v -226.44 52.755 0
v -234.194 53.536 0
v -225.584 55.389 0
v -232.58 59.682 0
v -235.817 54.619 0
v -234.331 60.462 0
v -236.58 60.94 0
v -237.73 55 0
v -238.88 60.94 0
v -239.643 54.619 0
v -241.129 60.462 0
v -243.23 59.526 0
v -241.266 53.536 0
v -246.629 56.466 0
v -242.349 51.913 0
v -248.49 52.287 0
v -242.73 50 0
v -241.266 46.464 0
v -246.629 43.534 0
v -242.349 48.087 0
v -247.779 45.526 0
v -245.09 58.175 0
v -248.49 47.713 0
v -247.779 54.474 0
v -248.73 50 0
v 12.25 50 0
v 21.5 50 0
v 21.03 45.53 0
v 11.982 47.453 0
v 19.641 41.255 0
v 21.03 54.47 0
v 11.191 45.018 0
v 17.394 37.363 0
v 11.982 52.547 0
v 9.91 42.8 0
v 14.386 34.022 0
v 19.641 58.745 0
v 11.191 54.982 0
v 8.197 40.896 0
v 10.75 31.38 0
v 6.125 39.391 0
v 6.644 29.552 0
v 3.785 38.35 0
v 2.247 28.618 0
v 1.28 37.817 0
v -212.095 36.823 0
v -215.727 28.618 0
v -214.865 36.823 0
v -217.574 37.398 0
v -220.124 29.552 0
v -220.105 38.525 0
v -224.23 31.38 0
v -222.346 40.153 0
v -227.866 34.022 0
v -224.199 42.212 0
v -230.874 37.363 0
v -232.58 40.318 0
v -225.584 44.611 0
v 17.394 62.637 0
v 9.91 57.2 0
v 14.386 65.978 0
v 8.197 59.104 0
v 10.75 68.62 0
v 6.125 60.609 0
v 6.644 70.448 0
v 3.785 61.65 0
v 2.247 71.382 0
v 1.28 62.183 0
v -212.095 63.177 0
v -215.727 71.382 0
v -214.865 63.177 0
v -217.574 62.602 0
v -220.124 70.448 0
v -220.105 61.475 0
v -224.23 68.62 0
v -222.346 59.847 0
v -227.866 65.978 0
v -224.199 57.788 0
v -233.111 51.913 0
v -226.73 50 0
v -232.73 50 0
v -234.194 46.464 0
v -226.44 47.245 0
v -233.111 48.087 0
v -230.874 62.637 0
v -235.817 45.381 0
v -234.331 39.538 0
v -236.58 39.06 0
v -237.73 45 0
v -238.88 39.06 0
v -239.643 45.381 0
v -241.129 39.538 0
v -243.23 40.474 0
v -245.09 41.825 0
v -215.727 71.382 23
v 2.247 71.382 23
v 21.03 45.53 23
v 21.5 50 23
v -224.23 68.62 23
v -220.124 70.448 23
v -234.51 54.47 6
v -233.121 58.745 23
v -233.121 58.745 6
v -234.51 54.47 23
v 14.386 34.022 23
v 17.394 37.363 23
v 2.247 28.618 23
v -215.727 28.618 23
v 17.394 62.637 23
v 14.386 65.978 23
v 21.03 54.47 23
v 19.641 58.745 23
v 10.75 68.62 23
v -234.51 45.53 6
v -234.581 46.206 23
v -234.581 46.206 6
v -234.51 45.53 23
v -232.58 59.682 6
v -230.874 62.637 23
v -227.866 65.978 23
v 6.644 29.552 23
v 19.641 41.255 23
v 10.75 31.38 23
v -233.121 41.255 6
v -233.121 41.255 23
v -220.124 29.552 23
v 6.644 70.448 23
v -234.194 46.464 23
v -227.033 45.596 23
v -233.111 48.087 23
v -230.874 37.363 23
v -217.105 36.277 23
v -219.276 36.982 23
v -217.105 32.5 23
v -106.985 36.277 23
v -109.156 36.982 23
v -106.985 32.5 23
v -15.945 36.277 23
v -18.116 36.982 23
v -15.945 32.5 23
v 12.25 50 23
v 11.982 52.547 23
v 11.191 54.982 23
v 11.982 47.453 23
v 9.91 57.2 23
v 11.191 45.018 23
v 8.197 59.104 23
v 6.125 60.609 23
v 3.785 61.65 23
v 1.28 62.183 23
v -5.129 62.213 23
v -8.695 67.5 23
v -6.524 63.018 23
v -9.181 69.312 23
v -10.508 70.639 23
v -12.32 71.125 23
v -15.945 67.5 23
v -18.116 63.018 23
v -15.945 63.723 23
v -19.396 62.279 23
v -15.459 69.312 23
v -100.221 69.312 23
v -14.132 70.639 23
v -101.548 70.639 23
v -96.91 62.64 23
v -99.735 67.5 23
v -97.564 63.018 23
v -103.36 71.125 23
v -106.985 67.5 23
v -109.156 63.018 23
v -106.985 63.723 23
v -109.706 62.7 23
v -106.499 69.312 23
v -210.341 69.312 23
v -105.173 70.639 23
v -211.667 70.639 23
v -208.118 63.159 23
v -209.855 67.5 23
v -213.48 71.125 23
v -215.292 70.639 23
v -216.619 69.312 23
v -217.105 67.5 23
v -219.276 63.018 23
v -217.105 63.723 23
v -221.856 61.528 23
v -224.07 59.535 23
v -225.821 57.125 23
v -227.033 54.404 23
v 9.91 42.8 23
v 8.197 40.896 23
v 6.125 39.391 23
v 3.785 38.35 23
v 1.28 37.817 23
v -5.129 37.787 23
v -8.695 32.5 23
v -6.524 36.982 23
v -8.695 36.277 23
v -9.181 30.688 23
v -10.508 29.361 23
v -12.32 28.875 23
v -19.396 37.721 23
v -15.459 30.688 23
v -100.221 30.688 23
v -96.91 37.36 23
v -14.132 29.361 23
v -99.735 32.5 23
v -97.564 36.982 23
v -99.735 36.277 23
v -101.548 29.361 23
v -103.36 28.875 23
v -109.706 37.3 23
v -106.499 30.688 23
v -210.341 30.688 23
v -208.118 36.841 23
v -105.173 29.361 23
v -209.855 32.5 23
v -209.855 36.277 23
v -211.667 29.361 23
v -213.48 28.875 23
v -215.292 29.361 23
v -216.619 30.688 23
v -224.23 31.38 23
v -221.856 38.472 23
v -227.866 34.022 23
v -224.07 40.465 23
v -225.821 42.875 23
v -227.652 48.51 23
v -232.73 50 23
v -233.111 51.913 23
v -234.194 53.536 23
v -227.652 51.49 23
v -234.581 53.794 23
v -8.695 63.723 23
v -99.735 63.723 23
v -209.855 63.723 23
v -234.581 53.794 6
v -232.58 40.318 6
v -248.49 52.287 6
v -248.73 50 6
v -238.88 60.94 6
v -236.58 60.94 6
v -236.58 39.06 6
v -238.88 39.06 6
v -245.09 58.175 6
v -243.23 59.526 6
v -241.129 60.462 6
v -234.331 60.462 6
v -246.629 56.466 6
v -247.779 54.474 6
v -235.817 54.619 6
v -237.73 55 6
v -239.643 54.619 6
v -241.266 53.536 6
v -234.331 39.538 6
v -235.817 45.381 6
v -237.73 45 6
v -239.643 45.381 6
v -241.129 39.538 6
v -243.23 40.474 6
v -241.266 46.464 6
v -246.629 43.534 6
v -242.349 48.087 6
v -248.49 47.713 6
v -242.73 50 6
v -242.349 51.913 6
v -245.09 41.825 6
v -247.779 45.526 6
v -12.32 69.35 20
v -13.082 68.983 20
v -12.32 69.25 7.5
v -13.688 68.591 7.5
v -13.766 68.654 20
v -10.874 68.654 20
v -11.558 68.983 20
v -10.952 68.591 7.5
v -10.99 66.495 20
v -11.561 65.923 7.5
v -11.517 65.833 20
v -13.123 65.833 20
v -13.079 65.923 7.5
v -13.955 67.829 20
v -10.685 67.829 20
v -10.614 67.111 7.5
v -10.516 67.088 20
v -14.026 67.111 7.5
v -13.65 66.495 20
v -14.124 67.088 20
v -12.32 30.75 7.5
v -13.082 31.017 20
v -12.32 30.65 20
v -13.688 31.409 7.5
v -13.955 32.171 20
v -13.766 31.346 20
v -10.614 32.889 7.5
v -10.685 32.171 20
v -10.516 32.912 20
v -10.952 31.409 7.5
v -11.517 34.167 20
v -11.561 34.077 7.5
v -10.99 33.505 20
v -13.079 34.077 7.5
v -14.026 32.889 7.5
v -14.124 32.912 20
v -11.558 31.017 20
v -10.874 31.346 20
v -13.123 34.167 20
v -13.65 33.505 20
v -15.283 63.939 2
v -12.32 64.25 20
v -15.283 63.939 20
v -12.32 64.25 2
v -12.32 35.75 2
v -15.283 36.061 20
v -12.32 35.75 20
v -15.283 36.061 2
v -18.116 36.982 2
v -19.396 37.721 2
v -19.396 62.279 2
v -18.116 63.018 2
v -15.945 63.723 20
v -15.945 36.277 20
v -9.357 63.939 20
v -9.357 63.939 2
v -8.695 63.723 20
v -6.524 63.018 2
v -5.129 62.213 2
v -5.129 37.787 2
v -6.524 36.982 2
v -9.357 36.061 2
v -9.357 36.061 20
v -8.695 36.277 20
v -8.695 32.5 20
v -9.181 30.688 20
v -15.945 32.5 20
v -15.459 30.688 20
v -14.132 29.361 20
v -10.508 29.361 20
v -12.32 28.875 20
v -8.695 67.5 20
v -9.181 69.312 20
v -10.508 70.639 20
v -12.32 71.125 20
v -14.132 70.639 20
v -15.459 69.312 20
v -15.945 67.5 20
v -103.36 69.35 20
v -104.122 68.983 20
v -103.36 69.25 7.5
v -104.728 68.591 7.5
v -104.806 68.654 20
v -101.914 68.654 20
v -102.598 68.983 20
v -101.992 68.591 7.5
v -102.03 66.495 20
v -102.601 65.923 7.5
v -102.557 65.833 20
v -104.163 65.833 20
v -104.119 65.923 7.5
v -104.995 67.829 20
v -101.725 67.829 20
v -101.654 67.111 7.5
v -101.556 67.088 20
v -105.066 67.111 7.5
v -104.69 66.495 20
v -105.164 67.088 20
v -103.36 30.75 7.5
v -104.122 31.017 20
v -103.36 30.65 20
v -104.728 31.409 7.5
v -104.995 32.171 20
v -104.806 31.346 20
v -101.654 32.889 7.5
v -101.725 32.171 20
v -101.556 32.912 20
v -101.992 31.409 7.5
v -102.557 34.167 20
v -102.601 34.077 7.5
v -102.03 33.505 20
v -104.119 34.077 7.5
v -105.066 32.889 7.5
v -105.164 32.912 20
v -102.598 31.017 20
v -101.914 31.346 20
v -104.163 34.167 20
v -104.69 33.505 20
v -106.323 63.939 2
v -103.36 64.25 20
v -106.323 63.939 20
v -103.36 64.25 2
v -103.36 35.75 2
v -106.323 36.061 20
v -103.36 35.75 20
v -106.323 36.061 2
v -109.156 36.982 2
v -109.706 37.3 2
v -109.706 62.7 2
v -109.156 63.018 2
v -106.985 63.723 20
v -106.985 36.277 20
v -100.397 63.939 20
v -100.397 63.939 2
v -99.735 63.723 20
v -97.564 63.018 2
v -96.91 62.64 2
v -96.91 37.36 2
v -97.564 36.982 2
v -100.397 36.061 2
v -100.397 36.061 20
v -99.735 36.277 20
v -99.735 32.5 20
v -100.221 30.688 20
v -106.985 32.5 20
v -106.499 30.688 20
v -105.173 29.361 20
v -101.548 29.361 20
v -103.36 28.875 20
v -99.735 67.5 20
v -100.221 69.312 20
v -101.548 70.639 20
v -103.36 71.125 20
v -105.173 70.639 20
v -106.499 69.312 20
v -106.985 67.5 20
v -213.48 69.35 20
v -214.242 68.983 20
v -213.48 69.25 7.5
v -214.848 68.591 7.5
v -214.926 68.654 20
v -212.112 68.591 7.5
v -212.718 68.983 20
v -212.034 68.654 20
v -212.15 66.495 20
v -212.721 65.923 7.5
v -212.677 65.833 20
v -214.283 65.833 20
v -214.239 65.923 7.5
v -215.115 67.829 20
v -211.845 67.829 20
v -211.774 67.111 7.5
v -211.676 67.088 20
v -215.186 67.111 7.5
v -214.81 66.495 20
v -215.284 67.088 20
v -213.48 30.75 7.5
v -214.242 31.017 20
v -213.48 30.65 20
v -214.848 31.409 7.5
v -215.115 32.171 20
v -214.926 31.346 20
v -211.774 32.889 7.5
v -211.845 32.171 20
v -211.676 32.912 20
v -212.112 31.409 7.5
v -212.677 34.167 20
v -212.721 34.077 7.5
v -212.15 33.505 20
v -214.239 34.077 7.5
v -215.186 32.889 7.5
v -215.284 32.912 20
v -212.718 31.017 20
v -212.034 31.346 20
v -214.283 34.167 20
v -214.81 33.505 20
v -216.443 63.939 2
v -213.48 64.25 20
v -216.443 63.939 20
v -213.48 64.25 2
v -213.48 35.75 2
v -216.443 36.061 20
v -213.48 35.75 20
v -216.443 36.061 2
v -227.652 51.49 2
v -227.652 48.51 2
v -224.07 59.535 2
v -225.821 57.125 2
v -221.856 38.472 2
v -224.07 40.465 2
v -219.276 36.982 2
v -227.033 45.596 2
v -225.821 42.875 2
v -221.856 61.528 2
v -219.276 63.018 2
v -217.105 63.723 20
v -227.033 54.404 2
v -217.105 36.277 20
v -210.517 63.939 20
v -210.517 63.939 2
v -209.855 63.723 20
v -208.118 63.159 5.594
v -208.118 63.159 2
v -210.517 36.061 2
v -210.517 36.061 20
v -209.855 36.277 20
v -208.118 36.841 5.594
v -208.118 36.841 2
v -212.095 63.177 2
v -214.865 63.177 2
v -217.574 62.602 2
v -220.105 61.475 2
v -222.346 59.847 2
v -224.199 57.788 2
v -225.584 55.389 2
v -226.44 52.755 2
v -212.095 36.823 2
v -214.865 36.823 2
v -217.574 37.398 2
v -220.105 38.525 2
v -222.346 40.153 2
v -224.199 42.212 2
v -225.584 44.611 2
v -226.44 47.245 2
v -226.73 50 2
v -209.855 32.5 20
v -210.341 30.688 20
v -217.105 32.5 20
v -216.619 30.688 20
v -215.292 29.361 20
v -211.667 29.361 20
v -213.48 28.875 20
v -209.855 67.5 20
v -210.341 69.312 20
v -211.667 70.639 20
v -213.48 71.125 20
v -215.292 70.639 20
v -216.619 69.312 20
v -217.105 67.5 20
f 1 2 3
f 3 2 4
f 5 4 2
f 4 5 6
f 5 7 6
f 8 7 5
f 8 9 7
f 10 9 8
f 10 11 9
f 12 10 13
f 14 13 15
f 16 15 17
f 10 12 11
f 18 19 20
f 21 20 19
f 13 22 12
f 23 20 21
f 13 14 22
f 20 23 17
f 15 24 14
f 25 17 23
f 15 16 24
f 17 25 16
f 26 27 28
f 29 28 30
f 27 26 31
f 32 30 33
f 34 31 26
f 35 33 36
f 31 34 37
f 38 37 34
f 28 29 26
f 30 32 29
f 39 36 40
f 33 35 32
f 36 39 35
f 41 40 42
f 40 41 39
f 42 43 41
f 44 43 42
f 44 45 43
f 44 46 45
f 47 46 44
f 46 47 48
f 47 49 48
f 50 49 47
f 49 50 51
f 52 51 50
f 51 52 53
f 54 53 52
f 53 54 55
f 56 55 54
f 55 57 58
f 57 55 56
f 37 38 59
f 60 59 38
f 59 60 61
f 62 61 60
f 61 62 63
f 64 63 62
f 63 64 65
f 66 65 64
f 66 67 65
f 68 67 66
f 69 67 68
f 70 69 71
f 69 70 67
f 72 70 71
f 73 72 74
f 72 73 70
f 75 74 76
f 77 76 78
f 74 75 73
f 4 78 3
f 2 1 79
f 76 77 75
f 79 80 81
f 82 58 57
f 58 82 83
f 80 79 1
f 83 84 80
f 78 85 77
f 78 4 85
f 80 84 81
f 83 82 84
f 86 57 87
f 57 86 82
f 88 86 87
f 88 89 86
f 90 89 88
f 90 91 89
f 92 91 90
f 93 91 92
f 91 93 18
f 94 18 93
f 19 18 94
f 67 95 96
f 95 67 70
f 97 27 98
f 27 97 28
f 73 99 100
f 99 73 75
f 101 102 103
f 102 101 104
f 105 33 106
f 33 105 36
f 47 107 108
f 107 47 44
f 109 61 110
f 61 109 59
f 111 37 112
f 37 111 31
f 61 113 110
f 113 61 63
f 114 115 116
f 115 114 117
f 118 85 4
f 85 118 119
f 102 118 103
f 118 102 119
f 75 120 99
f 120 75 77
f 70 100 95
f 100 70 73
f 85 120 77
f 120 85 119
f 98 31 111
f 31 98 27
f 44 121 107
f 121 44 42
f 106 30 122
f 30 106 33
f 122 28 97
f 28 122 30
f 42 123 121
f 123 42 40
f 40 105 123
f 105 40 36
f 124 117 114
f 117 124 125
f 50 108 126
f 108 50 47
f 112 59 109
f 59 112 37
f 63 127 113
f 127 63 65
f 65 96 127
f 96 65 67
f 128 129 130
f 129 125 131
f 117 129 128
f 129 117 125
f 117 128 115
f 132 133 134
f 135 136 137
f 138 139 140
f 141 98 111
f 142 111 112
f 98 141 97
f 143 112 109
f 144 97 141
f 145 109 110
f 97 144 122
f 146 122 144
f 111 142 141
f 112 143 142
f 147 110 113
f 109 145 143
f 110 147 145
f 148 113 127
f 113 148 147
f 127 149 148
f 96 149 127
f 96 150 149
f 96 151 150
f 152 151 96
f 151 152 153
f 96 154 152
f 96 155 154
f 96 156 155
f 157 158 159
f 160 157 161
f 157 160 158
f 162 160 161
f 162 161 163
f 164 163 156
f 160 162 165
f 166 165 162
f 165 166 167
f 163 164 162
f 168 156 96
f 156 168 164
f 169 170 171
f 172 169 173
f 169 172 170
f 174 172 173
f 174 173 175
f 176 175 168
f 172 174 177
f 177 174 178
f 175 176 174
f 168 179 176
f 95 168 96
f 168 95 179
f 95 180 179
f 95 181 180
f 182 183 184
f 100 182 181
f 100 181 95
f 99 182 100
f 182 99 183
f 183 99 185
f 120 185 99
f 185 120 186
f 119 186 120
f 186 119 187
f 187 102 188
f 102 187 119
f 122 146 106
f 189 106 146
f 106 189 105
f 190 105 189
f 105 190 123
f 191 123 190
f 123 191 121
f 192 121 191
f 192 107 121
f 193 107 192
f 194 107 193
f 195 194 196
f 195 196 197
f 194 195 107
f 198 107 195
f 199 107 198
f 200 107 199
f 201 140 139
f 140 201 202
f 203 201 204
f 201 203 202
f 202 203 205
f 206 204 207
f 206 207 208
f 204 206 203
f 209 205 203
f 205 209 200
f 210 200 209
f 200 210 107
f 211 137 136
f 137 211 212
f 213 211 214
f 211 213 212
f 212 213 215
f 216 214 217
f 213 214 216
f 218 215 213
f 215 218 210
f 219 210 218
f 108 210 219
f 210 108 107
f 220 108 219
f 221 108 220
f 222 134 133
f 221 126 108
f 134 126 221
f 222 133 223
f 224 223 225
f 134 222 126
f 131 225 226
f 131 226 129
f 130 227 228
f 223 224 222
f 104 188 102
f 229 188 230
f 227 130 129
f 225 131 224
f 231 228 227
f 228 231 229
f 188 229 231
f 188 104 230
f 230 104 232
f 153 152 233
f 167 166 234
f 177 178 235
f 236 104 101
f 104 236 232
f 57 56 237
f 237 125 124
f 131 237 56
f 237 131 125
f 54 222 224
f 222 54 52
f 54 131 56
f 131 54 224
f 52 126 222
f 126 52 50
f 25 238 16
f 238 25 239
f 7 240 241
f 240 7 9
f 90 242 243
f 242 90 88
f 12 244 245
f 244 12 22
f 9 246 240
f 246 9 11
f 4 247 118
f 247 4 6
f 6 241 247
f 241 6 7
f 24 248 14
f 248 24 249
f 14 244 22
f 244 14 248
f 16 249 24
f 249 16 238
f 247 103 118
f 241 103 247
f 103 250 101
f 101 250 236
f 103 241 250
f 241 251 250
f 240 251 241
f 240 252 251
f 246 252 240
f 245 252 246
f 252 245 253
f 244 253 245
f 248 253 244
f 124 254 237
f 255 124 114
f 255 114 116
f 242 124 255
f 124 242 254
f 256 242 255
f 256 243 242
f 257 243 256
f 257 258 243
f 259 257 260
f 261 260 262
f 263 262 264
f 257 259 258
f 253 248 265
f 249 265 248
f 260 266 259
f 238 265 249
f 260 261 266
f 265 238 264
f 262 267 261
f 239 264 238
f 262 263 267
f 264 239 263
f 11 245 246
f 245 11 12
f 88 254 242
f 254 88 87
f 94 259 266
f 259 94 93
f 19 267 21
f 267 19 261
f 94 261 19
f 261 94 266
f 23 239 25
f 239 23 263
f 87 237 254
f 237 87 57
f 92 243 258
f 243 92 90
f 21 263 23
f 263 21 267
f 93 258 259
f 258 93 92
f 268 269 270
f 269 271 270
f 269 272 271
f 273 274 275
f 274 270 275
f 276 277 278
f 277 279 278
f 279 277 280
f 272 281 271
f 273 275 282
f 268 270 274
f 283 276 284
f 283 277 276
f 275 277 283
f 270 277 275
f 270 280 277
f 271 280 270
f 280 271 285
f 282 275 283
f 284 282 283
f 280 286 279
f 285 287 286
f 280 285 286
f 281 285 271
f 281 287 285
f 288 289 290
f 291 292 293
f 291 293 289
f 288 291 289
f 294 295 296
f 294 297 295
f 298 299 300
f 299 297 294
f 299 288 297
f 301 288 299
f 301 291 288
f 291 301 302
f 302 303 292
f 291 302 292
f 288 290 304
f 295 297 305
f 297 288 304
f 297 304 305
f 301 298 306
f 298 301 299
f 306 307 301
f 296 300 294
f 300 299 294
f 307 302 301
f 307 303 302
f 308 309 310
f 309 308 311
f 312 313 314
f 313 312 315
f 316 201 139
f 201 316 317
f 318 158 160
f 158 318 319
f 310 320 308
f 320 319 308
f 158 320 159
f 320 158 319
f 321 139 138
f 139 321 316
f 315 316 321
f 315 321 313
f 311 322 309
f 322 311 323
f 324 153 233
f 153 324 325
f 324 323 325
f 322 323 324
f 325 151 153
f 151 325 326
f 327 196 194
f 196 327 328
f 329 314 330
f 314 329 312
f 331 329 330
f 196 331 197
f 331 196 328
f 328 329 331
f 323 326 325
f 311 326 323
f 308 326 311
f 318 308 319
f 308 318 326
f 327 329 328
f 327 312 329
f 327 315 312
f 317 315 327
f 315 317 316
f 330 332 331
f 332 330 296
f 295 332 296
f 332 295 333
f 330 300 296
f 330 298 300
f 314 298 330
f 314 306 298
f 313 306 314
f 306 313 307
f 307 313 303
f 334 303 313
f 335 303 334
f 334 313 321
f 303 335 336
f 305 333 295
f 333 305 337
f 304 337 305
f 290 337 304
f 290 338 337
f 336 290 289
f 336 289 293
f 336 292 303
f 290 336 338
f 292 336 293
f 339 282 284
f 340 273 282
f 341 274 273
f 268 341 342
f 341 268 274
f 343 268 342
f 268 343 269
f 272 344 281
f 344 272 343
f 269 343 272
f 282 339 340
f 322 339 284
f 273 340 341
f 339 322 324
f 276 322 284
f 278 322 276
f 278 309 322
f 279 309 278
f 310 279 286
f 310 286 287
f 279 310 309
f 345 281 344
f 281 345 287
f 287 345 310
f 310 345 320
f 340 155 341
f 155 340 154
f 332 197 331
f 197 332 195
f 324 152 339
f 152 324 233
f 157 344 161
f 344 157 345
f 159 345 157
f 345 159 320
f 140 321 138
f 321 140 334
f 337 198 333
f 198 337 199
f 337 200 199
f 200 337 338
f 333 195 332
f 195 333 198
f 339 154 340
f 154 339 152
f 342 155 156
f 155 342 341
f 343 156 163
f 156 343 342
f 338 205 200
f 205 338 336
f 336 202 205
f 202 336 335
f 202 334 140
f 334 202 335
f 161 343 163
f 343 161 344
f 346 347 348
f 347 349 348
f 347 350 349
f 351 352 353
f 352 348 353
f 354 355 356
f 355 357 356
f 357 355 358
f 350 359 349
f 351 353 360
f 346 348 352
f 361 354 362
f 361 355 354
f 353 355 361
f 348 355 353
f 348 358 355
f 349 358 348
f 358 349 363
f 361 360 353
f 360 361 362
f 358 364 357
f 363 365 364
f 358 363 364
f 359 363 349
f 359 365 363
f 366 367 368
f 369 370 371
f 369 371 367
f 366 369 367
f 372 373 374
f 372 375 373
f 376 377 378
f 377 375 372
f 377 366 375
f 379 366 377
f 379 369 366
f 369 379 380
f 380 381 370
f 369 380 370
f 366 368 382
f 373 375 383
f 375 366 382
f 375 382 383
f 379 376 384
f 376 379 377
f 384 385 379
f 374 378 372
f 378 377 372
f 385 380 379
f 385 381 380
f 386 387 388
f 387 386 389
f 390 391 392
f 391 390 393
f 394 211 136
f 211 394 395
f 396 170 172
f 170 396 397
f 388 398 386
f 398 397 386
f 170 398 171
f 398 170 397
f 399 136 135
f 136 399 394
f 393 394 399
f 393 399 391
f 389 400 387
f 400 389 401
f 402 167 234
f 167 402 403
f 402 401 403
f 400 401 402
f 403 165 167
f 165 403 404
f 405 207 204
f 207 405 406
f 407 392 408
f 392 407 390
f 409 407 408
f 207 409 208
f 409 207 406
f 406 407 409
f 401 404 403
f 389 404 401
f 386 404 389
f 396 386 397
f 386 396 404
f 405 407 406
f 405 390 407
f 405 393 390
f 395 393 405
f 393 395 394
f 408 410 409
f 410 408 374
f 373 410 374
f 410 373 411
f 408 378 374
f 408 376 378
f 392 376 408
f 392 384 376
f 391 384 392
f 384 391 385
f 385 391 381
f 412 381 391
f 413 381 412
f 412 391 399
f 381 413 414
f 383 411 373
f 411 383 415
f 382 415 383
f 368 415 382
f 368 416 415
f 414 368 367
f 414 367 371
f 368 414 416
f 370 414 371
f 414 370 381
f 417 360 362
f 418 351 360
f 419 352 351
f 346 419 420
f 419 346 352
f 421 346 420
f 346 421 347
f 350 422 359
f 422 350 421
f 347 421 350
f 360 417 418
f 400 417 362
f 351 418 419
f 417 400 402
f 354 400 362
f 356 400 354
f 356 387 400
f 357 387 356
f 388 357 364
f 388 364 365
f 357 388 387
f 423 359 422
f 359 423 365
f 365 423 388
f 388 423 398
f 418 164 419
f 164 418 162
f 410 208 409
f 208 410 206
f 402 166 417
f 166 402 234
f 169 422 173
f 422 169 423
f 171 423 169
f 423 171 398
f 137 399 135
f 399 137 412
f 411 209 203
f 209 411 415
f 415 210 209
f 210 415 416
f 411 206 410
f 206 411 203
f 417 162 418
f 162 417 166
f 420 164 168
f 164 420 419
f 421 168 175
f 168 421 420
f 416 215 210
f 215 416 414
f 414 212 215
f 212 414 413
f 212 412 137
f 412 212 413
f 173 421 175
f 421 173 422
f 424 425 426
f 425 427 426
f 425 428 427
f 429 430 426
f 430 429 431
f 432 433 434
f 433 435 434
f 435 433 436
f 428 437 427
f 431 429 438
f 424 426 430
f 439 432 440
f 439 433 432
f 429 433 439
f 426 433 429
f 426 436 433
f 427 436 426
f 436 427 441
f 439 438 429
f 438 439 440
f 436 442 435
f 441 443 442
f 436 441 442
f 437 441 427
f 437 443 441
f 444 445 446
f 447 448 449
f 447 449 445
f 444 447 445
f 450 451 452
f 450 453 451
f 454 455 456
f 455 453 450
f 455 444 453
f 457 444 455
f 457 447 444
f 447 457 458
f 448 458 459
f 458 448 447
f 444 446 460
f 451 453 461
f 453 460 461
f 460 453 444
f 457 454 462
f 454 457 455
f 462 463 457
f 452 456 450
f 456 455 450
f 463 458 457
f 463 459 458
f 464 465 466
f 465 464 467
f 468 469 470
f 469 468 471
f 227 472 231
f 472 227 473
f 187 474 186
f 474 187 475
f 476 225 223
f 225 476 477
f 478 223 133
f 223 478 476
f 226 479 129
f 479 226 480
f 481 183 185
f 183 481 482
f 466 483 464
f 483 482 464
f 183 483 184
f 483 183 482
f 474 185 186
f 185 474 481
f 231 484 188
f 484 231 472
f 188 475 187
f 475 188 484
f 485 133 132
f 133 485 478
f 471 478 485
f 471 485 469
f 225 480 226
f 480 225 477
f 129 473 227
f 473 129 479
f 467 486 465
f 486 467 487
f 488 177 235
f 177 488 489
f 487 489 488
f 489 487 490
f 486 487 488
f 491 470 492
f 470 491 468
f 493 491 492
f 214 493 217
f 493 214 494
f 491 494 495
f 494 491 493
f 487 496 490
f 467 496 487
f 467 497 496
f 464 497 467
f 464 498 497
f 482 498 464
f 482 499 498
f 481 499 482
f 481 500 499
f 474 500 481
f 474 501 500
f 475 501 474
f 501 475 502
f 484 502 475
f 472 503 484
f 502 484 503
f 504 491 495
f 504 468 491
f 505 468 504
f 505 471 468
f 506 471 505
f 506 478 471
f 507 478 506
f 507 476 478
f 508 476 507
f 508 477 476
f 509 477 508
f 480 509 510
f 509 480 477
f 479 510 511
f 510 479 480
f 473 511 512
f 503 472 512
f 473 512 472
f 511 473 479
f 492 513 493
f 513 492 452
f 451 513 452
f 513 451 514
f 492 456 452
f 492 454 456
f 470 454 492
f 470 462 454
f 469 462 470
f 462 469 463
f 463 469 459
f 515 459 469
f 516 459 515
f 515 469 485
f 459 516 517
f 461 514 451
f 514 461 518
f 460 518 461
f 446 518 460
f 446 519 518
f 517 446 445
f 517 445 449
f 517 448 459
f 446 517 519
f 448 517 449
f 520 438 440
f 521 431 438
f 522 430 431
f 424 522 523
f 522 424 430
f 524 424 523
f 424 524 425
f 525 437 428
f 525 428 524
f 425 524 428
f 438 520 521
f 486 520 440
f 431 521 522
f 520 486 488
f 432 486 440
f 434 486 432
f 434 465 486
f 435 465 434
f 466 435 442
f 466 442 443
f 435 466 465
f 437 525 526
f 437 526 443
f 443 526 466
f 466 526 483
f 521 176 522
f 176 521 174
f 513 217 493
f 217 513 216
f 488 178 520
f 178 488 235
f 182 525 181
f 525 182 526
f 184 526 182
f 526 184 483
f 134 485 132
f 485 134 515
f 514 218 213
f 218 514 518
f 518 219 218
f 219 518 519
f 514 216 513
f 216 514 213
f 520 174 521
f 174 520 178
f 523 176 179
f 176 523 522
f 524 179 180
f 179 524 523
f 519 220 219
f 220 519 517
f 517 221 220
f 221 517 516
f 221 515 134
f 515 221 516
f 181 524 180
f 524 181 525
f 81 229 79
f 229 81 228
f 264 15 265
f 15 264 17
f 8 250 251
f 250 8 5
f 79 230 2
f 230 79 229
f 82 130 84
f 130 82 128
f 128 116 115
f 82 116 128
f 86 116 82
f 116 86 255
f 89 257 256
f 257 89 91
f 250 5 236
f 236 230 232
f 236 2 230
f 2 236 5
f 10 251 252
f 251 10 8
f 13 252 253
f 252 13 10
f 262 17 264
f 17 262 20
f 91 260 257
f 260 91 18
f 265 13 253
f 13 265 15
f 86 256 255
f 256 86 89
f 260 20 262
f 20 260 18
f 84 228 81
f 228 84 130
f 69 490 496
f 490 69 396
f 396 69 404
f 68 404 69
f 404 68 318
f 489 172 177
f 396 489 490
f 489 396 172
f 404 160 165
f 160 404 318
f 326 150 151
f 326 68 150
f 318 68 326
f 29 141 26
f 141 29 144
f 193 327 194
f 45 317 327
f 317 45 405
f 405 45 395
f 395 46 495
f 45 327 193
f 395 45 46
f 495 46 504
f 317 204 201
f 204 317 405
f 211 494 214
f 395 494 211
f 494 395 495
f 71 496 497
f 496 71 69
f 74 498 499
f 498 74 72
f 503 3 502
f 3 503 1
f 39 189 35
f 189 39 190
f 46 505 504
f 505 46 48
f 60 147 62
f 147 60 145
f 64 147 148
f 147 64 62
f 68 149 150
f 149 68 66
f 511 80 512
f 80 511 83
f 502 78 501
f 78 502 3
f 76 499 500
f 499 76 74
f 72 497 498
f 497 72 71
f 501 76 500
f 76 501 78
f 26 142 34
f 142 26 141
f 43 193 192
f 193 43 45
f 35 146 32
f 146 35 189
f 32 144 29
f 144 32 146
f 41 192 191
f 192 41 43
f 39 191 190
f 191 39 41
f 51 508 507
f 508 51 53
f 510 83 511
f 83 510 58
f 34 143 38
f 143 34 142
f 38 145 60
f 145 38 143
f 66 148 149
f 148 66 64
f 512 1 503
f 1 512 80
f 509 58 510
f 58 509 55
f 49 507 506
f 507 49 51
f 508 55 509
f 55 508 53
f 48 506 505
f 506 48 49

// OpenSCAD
use <involute.scad>



//motor(holes=true);

assembly();
//hour_gear();
//minute_gear();
//second_gear();

//sun_gear(second_sun_teeth);
//sun_gear(minute_sun_teeth);
//sun_gear(hour_sun_teeth);

font = "Castellar";

/******* gear vars ******/
gear_sep = 87;

pitch = 5;
steps = 7;  //smoothness of gear
height = 10;
fn = 18;
wall=2;
tol = .2;

ring_thick=6.15;

second_sun_teeth = 11;
second_ring_teeth = 19;
second_ring_wall = 20;

minute_sun_teeth = 13;
minute_ring_teeth = 47;
minute_ring_wall = 25;
minute_lift = 25;

hour_sun_teeth = 17;
hour_ring_teeth = 79;
hour_ring_wall = 35;
hour_lift = 39;


/******* motor vars ******/
motor_rad = 28/2+.25;
motor_height = 19;
motor_screw_sep = 35;
motor_screw_rad = 3.5/2;
motor_screw_tab_rad = 7/2+.125;
motor_wire_jut_width = 14.5;
motor_wire_jut_length = 17.5;
motor_shaft_offset = 8;
motor_shaft_rad = 5/2;
motor_shaft_length = 10;
motor_shaft_flat = 1;
slop = .2;

module sun_gear(teeth = 7){
    height = ring_thick+wall*4;
    rad = gear_diameter(teeth, pitch)/2;
    
    difference(){
        union(){
            for(i=[0:1]) mirror([0,0,i]) translate([0,0,-height*i]) cylinder(r1=rad, r2=rad-wall*2, h=wall*2);
            
            gear(n=teeth,p=pitch,b=0,s=steps,t=tol,h=height,chamfer=false,spindle=0,helix=0,hole=0,nut=0,spokes=0,hollow=0,wall=wall,fn=fn);
        }
        
        //shaft hole
        difference(){
            cylinder(r=motor_shaft_rad+slop, h=height*3, center=true, $fn=36);
            for(i=[0:1]) mirror([i,0,0]) translate([motor_shaft_rad+slop,0,0]) cube([motor_shaft_flat*2-slop*2, 100, 100], center=true); 
        }
    }
}


module hour_gear(){
    projection()
    //hours
    translate([-minute_lift-hour_lift,0,0]) difference(){
        hanging_gear(sun_teeth = hour_sun_teeth, ring_teeth = hour_ring_teeth, ring_wall = hour_ring_wall, sun=false);
        
        circle_text(["24", "1", "2", "3", "4", "5", "6", "7", "8", "9", "10", "11", "12", "13", "14", "15", "16", "17", "18", "19", "20", "21", "22", "23"], rad = gear_diameter(hour_ring_teeth, pitch)/2+hour_ring_wall/2-2, size=13);
    }
}

module minute_gear(){
    projection()
    //minutes
    translate([-minute_lift,0,0]) difference(){
        hanging_gear(sun_teeth = minute_sun_teeth, ring_teeth = minute_ring_teeth, ring_wall = minute_ring_wall, sun=false);
        
        //text ring
        circle_text(["60", "2", "4", "6", "8",
        "10", "12", "14", "16", "18",
        "20", "22", "24", "26", "28",
        "30", "32", "34", "36", "38",
        "40", "42", "44", "46", "48",
        "50", "52", "54", "56", "58"], rad = gear_diameter(minute_ring_teeth, pitch)/2+minute_ring_wall/2+1, size=11);
    }
}

module second_gear(){
    projection()
    //seconds
    difference(){
        hanging_gear(sun_teeth = second_sun_teeth, ring_teeth = second_ring_teeth, ring_wall = second_ring_wall, sun=false);
        
        //text ring
        circle_text(["60", "5", "10", "15", "20", "25", "30", "35", "40", "45", "50", "55"], rad = gear_diameter(second_ring_teeth, pitch)/2+second_ring_wall/2+1.5, size=8);
    }
}

module mount(){
    difference(){
        union(){
            //body
            hull(){
                cylinder(r=motor_screw_sep/2+wall*2, h=motor_height+wall*2);
                translate([-(-gear_diameter(hour_sun_teeth,pitch)+gear_diameter(hour_ring_teeth,pitch))/2+motor_shaft_offset-minute_lift-hour_lift,0,0]) cylinder(r=motor_screw_sep/2+wall*2, h=motor_height+wall*2);
            }
            
            //hanger
            translate([-(-gear_diameter(hour_sun_teeth,pitch)+gear_diameter(hour_ring_teeth,pitch))/2+motor_shaft_offset-minute_lift-hour_lift-motor_rad-wall*5,0,0]) cylinder(r=11, h=wall*3);
        }
        
        //hanger
        translate([-(-gear_diameter(hour_sun_teeth,pitch)+gear_diameter(hour_ring_teeth,pitch))/2+motor_shaft_offset-minute_lift-hour_lift-motor_rad-wall*5,0,0]) cylinder(r=5, h=wall*41, center=true);
        
        //make the whole thing a slot
        hull(){
            cylinder(r=motor_rad-wall, h=motor_height*3, center=true);
            translate([-(-gear_diameter(hour_sun_teeth,pitch)+gear_diameter(hour_ring_teeth,pitch))/2+motor_shaft_offset-minute_lift-hour_lift,0,0]) cylinder(r=motor_rad-1, h=motor_height*3, center=true);
        }
            
        //motor cutouts
        for(i=[0:.9:wall+1]) translate([0,0,i]) {
            render() translate([-(-gear_diameter(second_sun_teeth,pitch)+gear_diameter(second_ring_teeth,pitch))/2+motor_shaft_offset, 0,wall]) rotate([0,0,90]) motor(holes=true);
            render() translate([-(-gear_diameter(minute_sun_teeth,pitch)+gear_diameter(minute_ring_teeth,pitch))/2+motor_shaft_offset-minute_lift,0,wall]) rotate([0,0,90]) motor(holes=true);
            render() translate([-(-gear_diameter(hour_sun_teeth,pitch)+gear_diameter(hour_ring_teeth,pitch))/2+motor_shaft_offset-minute_lift-hour_lift,0,wall]) rotate([0,0,90]) motor(holes=true);
        }
    }
}

module assembly(){
    !translate([0,50,0]) mount(); 
    //seconds
    difference(){
        hanging_gear(sun_teeth = second_sun_teeth, ring_teeth = second_ring_teeth, ring_wall = second_ring_wall);
        
        //text ring
        circle_text(["60", "5", "10", "15", "20", "25", "30", "35", "40", "45", "50", "55"], rad = gear_diameter(second_ring_teeth, pitch)/2+second_ring_wall/2+1.5, size=8);
    }
    
    //minutes
    translate([-minute_lift,0,0]) difference(){
        hanging_gear(sun_teeth = minute_sun_teeth, ring_teeth = minute_ring_teeth, ring_wall = minute_ring_wall);
        
        //text ring
        circle_text(["60", "2", "4", "6", "8",
        "10", "12", "14", "16", "18",
        "20", "22", "24", "26", "28",
        "30", "32", "34", "36", "38",
        "40", "42", "44", "46", "48",
        "50", "52", "54", "56", "58"], rad = gear_diameter(minute_ring_teeth, pitch)/2+minute_ring_wall/2+1, size=11);
    }
    
    //hours
    translate([-minute_lift-hour_lift,0,0]) difference(){
        hanging_gear(sun_teeth = hour_sun_teeth, ring_teeth = hour_ring_teeth, ring_wall = hour_ring_wall);
        
        circle_text(["24", "1", "2", "3", "4", "5", "6", "7", "8", "9", "10", "11", "12", "13", "14", "15", "16", "17", "18", "19", "20", "21", "22", "23"], rad = gear_diameter(hour_ring_teeth, pitch)/2+hour_ring_wall/2-2, size=13);
    }
}

module circle_text(letter_array=["1", "5", "12"], rad = 30, size=12){
    
    for(i=[0:len(letter_array)-1]) rotate([0,0,90-i*(360/len(letter_array))]) translate([0,rad,0]) linear_extrude(height=30, center=true)text(letter_array[i], size=size, halign="center", valign="center", font=font);
}

module hanging_gear(sun_teeth = 7, ring_teeth = 19, ring_wall = 20, sun = true, ring=true){
    
    echo("Ring Rad:", gear_diameter(ring_teeth, pitch)/2+ring_wall);
    
    translate([-(-gear_diameter(sun_teeth,pitch)+gear_diameter(ring_teeth,pitch))/2,0,0]) {
    if(sun == true)
        gear(n=sun_teeth,p=pitch,b=0,s=steps,t=tol,h=height,chamfer=false,spindle=0,helix=0,hole=0,nut=0,spokes=0,hollow=0,wall=wall,fn=fn);
    
    extra_gap = 1/pitch*3;
    
    if(ring == true)
        translate([(-gear_diameter(sun_teeth,pitch)+gear_diameter(ring_teeth,pitch))/2,0,0]) rotate([0,0,360/ring_teeth*round(ring_teeth/6)+((ring_teeth%2)?0:180/ring_teeth)-extra_gap/2])
            difference(){
                translate([0,0,height/2]) cylinder(r=gear_diameter(ring_teeth, pitch)/2+ring_wall, height/2, center=true, $fn=90);
                gear(n=ring_teeth,p=pitch,b=0,s=steps,t=-tol,h=height,chamfer=false,spindle=0,helix=0,hole=0,nut=0,spokes=0,hollow=0,wall=wall,fn=fn);
                rotate([0,0,extra_gap]) gear(n=ring_teeth,p=pitch,b=0,s=steps,t=-tol,h=height,chamfer=false,spindle=0,helix=0,hole=0,nut=0,spokes=0,hollow=0,wall=wall,fn=fn);
            }
    }
}


module motor(holes = false){
    difference(){
        union(){
            //body
            cylinder(r=motor_rad, h=motor_height);
            
            //wires
            translate([0,-motor_wire_jut_length/2,motor_height/2]) cube([motor_wire_jut_width, motor_wire_jut_length, motor_height], center=true);
            
            //screw tabs
            hull() for(i=[0:1]) mirror([i,0,0]) translate([motor_screw_sep/2,0,motor_height-1]) cylinder(r=motor_screw_tab_rad, h=1);
                
            //shaft
            translate([0,motor_shaft_offset,0]) cylinder(r=motor_shaft_rad, h=motor_shaft_length+motor_height);
            
            if(holes == true)
                for(i=[0:1]) mirror([i,0,0]) translate([motor_screw_sep/2,0,motor_height-1]) cylinder(r1=motor_screw_rad, r2=motor_screw_rad+slop, h=25, center=true);
        }
        
        //screw holes
        if(holes == false)
            for(i=[0:1]) mirror([i,0,0]) translate([motor_screw_sep/2,0,motor_height-1]) cylinder(r=motor_screw_rad, h=5, center=true);
    }
}
